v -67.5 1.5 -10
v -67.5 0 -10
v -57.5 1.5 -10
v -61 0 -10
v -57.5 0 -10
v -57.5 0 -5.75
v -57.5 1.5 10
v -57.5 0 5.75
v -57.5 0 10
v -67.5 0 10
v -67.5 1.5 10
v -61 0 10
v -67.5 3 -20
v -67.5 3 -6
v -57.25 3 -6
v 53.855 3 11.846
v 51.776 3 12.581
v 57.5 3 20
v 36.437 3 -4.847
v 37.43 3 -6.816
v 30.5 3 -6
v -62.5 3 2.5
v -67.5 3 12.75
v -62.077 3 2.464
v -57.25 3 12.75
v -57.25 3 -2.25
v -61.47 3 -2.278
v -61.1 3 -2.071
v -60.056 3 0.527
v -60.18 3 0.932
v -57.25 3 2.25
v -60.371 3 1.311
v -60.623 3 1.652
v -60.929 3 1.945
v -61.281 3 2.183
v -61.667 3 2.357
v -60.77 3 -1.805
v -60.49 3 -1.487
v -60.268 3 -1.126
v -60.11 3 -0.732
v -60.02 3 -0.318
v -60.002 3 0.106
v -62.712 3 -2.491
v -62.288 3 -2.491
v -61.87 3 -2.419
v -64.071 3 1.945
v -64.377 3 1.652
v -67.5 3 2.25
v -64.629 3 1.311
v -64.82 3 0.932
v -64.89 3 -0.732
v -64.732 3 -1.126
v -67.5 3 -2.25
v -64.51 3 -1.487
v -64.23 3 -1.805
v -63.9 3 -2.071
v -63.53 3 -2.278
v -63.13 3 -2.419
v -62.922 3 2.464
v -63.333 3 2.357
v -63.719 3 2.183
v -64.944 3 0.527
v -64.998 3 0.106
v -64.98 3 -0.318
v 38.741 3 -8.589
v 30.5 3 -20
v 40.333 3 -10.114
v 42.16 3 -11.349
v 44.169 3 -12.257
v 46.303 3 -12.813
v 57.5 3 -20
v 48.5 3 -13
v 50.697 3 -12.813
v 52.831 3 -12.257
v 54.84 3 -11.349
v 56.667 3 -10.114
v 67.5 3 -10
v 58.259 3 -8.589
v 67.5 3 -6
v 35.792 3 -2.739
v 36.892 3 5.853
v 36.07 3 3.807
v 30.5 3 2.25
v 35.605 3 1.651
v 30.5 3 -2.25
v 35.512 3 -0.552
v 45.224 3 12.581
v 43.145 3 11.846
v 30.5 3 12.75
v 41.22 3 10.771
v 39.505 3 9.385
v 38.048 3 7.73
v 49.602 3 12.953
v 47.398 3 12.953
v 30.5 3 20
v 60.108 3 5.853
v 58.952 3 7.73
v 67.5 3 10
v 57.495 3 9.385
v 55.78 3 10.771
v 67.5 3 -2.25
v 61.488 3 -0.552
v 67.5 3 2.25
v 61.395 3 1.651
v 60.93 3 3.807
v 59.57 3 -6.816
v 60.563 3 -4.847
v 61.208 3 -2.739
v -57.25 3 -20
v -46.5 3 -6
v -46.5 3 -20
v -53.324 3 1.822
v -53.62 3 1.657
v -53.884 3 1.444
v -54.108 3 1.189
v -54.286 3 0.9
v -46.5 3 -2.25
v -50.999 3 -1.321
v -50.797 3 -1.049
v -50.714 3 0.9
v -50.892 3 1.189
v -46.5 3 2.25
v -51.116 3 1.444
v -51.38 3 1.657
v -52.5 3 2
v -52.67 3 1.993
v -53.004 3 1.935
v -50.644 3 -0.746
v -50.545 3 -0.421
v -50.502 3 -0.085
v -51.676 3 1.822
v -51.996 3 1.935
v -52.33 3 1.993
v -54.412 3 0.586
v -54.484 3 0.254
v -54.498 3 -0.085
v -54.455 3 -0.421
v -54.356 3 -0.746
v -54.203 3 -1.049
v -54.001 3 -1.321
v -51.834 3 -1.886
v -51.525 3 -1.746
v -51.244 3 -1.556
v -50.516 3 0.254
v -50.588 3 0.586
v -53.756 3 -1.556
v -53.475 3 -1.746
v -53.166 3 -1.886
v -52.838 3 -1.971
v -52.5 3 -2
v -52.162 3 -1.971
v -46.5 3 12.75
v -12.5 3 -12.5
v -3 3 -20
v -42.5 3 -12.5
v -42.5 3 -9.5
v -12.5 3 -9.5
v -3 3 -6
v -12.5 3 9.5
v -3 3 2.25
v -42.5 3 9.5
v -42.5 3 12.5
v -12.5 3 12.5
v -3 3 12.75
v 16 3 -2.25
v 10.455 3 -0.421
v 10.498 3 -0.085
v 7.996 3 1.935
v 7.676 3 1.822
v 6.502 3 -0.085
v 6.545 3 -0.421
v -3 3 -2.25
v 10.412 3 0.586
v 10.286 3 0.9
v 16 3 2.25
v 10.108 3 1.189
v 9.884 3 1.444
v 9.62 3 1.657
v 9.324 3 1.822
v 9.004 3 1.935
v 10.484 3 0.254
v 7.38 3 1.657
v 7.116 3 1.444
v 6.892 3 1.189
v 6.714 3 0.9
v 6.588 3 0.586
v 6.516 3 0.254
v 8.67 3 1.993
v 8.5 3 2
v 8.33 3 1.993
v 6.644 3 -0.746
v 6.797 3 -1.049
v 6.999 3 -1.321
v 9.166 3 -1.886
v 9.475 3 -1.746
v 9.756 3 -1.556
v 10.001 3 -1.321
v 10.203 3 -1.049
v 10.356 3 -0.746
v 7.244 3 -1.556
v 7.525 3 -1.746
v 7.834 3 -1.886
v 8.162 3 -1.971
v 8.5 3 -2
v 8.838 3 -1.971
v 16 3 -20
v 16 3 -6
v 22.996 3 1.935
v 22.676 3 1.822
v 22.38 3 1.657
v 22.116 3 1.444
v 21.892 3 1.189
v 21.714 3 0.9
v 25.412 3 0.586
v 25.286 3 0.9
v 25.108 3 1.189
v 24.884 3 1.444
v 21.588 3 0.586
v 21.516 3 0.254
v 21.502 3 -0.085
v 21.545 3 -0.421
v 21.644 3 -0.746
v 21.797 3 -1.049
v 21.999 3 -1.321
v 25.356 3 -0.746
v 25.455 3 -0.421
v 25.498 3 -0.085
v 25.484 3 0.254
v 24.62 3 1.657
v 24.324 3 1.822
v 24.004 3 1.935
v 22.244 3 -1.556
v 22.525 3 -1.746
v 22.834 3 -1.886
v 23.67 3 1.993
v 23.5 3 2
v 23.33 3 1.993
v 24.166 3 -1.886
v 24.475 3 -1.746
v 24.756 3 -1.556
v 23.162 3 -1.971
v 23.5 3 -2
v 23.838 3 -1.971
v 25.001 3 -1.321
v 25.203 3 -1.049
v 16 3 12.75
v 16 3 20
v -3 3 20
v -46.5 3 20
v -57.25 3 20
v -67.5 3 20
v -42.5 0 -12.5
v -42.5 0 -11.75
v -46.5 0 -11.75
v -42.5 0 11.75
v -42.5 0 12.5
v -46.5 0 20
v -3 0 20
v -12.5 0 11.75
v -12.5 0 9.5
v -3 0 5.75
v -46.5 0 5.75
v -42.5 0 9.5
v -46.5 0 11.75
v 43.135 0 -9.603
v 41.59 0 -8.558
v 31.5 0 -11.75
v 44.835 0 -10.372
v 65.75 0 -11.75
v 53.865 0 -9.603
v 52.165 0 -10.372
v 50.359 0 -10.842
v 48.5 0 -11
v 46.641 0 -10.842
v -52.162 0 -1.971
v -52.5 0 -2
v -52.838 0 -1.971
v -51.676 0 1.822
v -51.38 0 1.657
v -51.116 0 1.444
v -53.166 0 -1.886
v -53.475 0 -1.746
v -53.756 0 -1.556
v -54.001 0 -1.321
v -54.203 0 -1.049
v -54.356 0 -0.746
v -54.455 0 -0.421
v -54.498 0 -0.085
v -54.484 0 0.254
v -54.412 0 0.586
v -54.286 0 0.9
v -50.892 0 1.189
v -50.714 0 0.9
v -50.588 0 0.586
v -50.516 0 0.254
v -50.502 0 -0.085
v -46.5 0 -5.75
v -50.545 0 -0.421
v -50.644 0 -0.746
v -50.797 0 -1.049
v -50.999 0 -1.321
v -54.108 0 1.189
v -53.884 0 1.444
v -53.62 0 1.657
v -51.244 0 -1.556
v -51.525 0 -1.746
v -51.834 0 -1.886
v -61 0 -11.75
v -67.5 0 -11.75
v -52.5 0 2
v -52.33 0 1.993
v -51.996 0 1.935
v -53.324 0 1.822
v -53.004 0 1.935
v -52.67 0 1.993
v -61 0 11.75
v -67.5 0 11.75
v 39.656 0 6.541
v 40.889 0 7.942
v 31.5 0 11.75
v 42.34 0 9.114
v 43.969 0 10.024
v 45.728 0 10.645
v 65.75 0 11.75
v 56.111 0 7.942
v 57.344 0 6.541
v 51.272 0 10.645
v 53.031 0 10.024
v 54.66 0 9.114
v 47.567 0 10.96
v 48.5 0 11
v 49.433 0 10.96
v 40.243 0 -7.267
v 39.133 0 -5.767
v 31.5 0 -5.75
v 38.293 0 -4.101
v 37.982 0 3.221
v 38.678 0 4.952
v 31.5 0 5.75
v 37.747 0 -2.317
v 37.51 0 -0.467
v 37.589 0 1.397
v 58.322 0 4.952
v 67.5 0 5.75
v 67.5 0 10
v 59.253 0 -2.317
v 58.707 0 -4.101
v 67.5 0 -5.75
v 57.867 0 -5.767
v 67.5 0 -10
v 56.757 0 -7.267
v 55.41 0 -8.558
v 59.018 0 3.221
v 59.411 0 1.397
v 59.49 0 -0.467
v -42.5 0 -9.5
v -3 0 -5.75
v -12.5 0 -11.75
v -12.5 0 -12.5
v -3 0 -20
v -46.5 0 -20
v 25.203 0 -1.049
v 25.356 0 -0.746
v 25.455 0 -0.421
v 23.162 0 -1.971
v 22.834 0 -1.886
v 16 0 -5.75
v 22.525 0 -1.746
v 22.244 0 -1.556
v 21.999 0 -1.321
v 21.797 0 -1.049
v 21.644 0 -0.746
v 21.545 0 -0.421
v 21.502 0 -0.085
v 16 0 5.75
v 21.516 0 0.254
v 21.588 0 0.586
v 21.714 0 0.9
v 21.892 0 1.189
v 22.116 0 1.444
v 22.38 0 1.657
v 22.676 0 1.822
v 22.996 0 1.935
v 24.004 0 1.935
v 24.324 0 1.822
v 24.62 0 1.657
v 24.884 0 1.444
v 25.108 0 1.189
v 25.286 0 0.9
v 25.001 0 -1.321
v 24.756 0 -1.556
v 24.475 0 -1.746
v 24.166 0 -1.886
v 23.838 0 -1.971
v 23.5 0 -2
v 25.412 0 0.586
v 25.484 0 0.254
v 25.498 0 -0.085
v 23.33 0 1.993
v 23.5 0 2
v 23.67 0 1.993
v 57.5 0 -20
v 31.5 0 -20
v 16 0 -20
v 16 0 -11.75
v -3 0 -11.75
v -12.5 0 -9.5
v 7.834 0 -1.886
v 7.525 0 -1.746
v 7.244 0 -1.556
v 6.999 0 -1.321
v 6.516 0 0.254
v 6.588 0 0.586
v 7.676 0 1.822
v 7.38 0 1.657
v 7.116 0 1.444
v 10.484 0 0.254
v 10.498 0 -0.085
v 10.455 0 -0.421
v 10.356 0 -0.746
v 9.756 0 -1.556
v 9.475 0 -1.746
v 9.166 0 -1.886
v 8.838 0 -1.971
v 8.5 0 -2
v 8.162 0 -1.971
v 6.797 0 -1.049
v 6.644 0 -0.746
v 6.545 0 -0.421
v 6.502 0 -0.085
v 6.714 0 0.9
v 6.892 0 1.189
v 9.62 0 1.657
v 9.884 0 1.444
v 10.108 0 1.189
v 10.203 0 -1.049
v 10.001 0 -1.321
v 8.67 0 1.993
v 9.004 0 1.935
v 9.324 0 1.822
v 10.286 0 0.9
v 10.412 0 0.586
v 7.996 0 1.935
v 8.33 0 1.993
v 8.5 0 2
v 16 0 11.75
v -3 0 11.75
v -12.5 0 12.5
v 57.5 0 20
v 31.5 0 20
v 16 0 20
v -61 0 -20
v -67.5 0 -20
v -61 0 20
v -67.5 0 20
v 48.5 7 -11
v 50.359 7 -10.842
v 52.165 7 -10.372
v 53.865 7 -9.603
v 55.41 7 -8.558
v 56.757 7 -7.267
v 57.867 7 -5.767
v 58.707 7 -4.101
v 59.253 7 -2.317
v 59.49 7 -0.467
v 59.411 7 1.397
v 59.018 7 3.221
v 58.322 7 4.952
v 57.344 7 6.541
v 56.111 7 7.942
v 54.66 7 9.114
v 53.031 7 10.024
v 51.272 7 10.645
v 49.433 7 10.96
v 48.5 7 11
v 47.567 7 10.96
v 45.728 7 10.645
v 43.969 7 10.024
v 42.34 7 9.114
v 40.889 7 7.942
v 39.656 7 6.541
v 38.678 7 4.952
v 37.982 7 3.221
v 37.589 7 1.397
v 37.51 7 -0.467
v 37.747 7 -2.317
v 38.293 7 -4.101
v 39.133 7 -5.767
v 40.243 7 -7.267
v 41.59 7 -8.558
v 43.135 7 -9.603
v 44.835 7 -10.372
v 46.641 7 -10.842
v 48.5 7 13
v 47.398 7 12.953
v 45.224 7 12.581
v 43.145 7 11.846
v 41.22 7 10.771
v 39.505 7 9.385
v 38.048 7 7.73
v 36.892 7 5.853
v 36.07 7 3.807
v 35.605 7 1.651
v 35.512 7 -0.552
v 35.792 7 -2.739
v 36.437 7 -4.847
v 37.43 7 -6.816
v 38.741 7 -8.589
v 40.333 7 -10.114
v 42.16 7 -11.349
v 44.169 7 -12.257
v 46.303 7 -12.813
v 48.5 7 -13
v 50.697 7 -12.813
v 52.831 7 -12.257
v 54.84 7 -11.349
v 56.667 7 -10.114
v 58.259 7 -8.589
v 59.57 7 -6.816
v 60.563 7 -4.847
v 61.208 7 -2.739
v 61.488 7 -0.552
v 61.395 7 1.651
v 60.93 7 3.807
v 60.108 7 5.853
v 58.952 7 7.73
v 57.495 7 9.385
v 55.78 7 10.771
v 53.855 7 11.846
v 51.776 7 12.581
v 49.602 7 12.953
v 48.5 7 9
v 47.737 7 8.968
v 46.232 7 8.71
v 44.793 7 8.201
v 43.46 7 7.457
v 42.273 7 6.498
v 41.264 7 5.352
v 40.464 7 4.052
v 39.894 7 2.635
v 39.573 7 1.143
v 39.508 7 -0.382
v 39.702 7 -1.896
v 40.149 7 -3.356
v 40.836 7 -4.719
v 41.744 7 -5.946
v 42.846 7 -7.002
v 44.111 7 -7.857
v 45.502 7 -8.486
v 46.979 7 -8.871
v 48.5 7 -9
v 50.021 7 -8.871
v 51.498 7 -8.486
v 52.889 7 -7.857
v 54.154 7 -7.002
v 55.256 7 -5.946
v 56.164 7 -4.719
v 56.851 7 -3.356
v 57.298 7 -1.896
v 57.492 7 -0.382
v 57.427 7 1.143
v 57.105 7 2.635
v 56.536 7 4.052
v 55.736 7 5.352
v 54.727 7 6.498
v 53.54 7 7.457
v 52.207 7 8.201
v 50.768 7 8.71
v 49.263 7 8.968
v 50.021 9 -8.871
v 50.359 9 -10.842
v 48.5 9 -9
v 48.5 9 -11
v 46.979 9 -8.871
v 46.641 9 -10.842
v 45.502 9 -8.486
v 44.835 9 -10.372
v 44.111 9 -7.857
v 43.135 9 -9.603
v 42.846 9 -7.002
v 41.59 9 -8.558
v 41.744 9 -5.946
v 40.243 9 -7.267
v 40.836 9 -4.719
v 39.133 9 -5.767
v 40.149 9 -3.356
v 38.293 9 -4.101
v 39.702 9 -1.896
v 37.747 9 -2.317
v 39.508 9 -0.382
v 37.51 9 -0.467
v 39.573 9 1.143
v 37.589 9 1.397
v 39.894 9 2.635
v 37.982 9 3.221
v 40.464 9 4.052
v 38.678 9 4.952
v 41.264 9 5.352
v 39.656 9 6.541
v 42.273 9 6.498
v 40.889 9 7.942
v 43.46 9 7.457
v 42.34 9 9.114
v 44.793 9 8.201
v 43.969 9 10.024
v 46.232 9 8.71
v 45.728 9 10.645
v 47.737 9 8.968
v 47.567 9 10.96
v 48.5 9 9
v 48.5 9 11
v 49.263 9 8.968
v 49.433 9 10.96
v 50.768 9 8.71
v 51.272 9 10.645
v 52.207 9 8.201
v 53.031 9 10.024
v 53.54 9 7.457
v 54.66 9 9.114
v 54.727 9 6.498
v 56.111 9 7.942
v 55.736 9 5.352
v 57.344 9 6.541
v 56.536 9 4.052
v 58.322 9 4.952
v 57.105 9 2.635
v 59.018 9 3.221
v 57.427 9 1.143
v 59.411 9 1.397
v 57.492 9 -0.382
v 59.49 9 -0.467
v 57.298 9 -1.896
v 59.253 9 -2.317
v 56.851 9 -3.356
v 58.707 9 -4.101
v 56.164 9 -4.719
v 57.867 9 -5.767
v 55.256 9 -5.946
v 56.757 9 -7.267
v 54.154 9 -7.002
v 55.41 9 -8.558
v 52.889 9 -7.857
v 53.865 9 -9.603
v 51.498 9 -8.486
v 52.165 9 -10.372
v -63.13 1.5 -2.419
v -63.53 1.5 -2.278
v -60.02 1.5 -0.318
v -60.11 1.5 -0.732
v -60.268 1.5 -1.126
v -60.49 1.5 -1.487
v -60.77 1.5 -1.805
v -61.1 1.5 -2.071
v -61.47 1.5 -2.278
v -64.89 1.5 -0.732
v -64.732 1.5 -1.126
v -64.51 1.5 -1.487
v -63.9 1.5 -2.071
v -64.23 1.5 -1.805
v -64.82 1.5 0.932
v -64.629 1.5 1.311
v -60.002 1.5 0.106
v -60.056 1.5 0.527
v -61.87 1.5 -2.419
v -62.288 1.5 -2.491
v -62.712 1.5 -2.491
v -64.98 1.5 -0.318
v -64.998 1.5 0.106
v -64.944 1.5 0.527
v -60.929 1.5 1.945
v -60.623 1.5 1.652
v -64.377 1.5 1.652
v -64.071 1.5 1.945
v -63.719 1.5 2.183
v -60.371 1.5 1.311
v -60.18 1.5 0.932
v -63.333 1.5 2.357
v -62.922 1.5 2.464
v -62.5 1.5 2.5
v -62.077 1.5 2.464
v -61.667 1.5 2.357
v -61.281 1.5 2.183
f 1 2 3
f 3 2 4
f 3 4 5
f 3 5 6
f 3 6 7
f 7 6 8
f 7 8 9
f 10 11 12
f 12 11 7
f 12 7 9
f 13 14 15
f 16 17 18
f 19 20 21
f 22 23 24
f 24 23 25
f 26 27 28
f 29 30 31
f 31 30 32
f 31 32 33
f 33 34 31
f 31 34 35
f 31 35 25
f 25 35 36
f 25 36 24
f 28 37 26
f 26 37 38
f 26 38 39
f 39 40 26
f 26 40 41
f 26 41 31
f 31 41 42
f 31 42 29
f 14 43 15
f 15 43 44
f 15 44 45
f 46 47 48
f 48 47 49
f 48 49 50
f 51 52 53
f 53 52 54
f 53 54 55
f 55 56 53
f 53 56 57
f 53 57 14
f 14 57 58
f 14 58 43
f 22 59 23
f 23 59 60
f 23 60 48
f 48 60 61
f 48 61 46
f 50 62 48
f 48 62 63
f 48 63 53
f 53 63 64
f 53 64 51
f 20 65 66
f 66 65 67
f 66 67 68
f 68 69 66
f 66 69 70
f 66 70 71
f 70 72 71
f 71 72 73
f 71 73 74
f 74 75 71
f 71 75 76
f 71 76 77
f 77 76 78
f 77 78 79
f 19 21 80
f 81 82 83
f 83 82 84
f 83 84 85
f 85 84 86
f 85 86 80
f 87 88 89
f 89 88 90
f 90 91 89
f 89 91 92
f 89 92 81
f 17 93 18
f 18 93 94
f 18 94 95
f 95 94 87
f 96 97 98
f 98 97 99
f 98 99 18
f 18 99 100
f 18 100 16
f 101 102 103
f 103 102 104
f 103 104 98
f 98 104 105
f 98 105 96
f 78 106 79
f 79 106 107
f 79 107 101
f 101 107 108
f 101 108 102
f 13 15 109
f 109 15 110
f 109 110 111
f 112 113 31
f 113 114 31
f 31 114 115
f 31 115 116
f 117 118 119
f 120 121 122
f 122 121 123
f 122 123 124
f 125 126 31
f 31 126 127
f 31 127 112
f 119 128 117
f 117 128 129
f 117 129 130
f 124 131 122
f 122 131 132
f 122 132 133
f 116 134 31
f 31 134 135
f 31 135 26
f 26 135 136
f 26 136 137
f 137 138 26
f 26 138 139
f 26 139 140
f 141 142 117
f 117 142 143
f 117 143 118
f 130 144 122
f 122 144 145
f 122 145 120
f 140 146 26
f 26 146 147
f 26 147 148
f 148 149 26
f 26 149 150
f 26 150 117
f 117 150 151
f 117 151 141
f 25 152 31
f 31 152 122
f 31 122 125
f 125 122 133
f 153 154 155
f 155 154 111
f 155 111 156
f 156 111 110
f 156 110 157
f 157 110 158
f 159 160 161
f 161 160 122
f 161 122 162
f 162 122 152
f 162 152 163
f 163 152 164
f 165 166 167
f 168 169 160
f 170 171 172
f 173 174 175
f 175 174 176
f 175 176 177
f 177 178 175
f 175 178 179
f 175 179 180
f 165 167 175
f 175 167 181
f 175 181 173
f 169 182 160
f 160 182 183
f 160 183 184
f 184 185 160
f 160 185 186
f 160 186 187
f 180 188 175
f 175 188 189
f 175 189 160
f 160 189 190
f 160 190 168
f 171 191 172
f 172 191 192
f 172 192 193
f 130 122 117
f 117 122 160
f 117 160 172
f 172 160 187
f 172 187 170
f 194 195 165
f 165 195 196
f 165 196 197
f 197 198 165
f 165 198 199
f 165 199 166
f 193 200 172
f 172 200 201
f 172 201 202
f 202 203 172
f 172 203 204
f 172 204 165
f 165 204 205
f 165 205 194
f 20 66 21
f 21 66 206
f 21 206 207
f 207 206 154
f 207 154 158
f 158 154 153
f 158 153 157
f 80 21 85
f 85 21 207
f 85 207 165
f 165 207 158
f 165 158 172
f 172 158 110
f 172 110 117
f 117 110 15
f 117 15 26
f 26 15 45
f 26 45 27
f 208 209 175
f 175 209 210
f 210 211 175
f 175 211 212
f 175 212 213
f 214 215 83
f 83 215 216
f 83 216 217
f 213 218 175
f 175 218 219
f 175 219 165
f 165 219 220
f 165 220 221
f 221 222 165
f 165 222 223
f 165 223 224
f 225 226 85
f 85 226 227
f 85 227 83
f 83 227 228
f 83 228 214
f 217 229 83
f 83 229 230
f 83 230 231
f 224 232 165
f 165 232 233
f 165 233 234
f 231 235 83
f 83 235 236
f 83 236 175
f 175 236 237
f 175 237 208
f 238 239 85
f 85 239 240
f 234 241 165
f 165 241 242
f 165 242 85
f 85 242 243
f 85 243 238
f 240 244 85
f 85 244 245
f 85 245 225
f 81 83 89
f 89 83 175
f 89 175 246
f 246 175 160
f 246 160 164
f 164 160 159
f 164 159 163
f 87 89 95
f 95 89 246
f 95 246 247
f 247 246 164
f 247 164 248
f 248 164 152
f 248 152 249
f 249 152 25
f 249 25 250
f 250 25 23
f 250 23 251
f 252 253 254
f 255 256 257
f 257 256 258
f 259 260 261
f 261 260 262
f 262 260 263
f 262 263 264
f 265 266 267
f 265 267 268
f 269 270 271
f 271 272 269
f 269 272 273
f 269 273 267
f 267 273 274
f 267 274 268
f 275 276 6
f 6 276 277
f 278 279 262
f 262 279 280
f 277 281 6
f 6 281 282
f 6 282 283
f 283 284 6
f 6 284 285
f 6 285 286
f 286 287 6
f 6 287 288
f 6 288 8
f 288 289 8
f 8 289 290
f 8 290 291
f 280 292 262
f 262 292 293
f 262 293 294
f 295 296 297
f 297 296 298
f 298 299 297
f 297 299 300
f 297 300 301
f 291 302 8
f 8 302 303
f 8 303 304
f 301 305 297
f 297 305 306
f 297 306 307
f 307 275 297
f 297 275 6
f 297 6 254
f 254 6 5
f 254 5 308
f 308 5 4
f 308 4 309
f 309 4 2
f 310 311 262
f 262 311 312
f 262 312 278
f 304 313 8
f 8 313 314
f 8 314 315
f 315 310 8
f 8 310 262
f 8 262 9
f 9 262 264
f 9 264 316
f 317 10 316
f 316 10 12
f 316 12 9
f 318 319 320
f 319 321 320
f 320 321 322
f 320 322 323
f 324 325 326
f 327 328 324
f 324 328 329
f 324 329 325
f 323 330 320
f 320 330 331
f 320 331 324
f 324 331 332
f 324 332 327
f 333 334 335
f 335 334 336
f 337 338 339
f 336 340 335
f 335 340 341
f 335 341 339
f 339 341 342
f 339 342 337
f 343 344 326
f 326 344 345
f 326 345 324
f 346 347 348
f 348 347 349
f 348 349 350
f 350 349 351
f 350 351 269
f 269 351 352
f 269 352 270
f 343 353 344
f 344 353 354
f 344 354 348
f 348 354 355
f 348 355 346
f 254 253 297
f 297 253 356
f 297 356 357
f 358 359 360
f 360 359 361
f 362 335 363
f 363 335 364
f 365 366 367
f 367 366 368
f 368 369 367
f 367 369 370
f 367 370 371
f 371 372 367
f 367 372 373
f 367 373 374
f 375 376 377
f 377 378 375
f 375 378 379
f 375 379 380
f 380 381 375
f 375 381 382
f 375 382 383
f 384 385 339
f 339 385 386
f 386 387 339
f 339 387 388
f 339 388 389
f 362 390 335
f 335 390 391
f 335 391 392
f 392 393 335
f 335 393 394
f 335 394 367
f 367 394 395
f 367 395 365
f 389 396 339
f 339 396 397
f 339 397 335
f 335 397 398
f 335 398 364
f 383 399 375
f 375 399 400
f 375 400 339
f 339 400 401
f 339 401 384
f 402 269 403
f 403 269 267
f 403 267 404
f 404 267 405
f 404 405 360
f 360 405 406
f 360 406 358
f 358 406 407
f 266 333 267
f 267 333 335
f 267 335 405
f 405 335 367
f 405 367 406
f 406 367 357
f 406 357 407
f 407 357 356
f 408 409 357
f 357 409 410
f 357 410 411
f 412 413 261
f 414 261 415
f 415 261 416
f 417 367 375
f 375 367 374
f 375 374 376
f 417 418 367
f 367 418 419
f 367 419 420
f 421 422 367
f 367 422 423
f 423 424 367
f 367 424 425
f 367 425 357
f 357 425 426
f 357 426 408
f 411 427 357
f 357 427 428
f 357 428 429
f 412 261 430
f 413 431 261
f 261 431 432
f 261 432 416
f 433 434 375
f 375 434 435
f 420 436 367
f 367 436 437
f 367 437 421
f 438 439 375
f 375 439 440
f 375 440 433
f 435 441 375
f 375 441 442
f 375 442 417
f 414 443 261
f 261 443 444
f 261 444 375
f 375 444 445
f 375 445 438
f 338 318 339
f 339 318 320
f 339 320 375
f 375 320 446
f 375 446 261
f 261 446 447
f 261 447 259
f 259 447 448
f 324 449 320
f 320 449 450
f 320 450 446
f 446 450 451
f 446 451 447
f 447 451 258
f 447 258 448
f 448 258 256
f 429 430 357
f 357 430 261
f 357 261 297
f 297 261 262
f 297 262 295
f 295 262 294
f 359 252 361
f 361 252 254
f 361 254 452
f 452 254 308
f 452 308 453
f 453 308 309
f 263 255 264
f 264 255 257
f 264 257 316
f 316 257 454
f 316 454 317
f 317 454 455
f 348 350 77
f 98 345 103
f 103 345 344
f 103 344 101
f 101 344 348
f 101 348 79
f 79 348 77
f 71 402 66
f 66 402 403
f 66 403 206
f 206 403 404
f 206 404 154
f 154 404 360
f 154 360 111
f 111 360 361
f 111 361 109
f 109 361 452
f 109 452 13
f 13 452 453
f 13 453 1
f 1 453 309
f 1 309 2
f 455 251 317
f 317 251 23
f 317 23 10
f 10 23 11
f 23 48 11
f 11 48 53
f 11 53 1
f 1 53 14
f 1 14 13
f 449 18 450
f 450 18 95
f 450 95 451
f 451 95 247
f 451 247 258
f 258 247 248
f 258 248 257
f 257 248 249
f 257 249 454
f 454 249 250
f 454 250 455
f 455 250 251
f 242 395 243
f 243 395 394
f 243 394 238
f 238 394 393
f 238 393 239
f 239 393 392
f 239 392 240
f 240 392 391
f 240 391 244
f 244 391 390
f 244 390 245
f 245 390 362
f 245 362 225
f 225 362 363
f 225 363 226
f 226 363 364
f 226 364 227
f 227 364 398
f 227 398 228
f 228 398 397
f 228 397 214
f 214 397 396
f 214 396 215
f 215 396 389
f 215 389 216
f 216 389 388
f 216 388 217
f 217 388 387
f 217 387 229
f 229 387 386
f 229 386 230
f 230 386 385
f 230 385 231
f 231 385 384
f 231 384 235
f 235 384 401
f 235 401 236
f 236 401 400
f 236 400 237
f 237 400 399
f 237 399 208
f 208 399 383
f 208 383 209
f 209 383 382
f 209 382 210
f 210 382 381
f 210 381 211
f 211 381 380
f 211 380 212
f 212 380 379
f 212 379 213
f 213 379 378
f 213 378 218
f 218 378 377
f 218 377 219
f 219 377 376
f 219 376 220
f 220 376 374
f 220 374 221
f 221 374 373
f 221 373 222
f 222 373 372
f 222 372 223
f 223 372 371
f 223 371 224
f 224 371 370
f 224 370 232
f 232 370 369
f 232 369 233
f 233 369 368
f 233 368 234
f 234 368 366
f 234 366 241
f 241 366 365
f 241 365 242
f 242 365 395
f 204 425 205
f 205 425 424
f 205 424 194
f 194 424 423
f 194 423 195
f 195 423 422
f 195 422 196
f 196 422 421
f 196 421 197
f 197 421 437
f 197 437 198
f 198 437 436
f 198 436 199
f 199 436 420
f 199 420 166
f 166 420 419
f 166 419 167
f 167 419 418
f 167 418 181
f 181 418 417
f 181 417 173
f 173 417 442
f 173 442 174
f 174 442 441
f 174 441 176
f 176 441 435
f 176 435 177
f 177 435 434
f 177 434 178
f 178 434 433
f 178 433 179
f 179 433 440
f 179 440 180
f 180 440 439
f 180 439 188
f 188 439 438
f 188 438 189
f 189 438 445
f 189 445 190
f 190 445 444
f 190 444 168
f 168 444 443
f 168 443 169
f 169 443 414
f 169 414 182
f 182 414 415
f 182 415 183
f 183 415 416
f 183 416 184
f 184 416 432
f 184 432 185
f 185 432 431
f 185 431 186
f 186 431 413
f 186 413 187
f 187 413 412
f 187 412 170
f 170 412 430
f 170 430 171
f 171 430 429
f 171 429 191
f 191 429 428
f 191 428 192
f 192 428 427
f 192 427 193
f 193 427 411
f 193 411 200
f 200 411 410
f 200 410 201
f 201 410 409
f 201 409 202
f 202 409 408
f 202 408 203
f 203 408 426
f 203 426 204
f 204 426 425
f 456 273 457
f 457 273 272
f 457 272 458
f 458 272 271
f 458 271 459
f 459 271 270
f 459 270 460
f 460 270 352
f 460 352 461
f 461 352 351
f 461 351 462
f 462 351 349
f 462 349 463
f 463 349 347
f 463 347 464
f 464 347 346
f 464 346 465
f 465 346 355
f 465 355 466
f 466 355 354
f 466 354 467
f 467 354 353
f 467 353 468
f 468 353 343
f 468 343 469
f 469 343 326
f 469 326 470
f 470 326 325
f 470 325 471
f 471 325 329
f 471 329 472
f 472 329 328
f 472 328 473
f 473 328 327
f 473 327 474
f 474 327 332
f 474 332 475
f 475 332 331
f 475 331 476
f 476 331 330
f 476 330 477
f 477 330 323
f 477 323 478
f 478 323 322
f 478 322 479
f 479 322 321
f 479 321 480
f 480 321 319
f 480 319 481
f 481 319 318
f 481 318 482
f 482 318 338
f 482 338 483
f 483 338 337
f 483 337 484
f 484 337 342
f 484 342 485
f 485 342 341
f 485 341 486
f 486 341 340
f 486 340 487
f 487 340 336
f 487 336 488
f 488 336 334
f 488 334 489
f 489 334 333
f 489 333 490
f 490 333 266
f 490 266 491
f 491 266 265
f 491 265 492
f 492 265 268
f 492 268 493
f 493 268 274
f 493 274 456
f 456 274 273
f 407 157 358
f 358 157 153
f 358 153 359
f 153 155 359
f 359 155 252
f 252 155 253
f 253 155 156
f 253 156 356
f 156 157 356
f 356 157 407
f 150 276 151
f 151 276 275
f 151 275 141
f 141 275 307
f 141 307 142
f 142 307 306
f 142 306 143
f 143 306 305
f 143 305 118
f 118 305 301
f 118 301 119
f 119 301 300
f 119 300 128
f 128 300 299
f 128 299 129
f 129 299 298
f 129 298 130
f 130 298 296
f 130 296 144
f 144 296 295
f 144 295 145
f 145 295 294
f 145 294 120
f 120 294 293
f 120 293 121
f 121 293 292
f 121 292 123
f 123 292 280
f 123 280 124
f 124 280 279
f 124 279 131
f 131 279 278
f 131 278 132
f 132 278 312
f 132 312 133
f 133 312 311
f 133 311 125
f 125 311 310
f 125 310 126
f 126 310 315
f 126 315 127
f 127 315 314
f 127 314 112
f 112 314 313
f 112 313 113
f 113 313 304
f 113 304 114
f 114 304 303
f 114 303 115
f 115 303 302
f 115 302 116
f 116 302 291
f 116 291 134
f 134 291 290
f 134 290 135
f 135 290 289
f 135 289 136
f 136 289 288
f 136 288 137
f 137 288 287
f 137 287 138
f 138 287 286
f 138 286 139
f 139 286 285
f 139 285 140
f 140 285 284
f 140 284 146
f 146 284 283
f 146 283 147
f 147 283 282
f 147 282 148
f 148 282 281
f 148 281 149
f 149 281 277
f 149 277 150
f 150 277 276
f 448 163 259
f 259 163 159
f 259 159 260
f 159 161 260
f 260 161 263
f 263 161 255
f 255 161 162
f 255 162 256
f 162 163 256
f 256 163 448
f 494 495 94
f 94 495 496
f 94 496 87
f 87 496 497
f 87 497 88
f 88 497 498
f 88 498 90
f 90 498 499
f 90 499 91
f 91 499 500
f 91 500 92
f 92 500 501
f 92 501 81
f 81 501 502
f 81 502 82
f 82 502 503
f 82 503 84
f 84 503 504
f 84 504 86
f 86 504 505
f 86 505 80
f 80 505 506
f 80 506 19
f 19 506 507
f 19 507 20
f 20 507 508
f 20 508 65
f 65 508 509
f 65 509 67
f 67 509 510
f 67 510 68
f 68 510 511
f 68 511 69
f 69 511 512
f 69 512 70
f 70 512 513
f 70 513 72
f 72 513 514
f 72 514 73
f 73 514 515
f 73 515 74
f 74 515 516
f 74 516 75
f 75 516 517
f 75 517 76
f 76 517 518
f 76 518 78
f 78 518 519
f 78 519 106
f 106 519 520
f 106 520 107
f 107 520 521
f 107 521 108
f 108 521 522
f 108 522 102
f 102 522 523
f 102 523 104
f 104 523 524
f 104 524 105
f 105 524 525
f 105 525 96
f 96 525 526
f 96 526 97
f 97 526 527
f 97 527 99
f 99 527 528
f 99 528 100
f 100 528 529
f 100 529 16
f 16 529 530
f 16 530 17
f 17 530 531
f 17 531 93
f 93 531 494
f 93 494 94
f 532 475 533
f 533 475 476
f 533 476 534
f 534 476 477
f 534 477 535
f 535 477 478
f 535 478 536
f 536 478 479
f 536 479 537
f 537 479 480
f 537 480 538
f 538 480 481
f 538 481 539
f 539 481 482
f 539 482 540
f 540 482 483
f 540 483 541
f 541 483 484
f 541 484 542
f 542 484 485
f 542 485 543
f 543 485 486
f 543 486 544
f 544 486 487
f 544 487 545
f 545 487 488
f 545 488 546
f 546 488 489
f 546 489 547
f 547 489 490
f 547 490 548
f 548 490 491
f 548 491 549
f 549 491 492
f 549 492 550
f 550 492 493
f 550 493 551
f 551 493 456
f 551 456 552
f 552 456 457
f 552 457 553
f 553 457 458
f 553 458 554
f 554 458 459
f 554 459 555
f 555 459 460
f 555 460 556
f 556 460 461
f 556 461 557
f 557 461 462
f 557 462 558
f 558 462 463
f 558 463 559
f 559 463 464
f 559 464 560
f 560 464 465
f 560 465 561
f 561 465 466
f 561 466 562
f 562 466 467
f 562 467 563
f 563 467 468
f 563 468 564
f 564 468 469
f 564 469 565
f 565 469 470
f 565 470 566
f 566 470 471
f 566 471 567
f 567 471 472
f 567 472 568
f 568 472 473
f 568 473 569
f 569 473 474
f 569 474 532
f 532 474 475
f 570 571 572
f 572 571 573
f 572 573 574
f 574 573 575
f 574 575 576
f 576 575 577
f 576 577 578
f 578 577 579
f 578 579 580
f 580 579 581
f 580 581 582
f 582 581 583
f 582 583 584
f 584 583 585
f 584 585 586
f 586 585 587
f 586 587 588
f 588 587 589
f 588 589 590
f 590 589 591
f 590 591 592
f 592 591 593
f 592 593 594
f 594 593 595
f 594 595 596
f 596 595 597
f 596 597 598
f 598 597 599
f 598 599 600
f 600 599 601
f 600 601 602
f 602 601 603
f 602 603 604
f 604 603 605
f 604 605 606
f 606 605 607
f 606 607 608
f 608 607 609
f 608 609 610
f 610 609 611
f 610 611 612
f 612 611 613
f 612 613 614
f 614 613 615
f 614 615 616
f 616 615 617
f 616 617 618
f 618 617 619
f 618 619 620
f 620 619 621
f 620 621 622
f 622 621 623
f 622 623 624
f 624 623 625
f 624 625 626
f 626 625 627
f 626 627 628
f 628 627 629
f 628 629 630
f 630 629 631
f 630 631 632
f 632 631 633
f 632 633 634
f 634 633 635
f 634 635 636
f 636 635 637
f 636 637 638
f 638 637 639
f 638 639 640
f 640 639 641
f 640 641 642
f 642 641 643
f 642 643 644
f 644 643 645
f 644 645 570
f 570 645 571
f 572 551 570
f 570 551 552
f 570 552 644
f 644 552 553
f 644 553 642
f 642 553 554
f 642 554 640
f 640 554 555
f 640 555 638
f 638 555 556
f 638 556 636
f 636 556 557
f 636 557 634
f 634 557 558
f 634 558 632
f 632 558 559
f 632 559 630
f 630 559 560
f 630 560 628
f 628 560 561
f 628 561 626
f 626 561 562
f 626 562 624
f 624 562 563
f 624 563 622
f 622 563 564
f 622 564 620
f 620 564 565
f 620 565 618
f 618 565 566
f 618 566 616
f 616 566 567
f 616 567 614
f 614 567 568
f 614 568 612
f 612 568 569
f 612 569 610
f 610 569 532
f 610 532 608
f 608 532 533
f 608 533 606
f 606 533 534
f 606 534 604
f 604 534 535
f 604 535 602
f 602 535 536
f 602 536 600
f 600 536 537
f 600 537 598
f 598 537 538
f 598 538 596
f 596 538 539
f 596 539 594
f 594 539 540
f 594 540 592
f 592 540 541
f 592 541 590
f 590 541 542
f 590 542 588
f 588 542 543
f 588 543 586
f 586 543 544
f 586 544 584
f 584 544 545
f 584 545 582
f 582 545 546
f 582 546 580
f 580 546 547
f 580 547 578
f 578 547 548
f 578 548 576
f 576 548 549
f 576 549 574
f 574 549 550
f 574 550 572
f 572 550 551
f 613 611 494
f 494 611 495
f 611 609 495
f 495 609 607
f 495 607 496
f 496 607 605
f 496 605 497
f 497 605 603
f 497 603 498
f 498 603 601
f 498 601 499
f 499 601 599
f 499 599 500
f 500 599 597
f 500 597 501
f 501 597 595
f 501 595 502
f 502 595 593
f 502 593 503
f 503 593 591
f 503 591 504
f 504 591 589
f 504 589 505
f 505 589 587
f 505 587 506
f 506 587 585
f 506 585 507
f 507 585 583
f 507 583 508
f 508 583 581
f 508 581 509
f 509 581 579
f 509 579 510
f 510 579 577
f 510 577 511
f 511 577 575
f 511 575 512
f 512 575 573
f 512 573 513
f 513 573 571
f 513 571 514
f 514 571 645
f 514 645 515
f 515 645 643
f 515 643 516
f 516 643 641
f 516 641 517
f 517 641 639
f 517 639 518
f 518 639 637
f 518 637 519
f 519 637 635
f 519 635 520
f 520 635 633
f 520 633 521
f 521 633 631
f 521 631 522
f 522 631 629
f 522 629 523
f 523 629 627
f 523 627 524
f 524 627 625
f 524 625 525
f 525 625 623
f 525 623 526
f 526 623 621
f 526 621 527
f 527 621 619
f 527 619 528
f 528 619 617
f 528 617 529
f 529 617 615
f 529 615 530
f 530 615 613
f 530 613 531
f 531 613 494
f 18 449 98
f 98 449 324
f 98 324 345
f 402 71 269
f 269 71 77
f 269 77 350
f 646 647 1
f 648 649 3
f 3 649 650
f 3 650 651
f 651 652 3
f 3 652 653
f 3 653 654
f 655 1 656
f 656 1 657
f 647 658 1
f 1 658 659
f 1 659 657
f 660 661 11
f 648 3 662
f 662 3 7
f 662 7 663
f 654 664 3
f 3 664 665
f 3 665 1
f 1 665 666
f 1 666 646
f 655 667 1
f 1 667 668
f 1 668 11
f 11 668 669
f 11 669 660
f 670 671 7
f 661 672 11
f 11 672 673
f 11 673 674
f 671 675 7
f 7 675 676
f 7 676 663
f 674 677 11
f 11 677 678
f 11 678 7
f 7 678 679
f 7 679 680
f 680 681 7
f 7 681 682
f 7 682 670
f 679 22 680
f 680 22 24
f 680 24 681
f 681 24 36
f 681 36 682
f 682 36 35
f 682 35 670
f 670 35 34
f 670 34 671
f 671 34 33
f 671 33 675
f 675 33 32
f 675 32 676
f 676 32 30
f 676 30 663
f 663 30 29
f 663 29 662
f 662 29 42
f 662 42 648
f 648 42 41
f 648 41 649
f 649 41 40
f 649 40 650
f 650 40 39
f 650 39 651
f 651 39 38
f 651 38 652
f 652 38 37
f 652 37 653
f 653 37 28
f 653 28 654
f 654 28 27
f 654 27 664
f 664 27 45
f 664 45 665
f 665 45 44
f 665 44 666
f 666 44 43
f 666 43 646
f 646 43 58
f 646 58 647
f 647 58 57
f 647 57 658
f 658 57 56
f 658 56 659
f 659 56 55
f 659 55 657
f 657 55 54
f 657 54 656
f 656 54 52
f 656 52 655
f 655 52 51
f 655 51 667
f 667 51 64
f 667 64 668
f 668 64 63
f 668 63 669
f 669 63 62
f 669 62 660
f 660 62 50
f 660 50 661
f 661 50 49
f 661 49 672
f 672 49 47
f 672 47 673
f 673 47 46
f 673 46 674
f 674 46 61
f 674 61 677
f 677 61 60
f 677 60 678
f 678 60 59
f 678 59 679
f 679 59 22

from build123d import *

# Parameters (mm, degrees)
CROQUIS1_R              = 11
CROQUIS1_R_2            = 2
CROQUIS1_W              = 30
CROQUIS1_H              = 3
SALIENTE_EXTRUIR1_DEPTH = 3
CROQUIS2_R              = 13
CROQUIS2_R_2            = 11
SALIENTE_EXTRUIR2_DEPTH = 4
CROQUIS3_R              = 13
CROQUIS3_R_2            = 9
SALIENTE_EXTRUIR3_DEPTH = 2
CHAFL_N1_SIZE           = 2
CHAFL_N2_SIZE           = 10
CROQUIS4_W              = 10
CROQUIS4_H              = 20
CROQUIS4_R              = 2.5
SALIENTE_EXTRUIR4_DEPTH = 1.5


with BuildPart() as part:
    # Croquis1 → Saliente-Extruir1 (new body)
    with BuildSketch(Plane(origin=(0, 0, 0), x_dir=(1, 0, 0), z_dir=(0, 1, 0))):
        Polygon((-67.5, -20), (67.5, -20), (67.5, 20), (-67.5, 20), (-67.5, 10), (-57.5, 10), (-57.5, -10), (-67.5, -10), align=None)
        with Locations(Location((48.5, 0, 0), (0, 0, 270))):
            Circle(CROQUIS1_R, mode=Mode.SUBTRACT)
        with Locations(Location((-52.5, 0, 0), (0, 0, 270))):
            Circle(CROQUIS1_R_2, mode=Mode.SUBTRACT)
        with Locations(Location((23.5, 0, 0), (0, 0, 270))):
            Circle(CROQUIS1_R_2, mode=Mode.SUBTRACT)
        with Locations(Location((8.5, 0, 0), (0, 0, 270))):
            Circle(CROQUIS1_R_2, mode=Mode.SUBTRACT)
        with Locations((-27.5, 11)):
            Rectangle(CROQUIS1_W, CROQUIS1_H, mode=Mode.SUBTRACT)
        with Locations((-27.5, -11)):
            Rectangle(CROQUIS1_W, CROQUIS1_H, mode=Mode.SUBTRACT)
    extrude(amount=SALIENTE_EXTRUIR1_DEPTH)

    # Croquis2 → Saliente-Extruir2 (add)
    with BuildSketch(Plane(origin=(0, 3, 0), x_dir=(1, 0, 0), z_dir=(0, 1, 0))):
        with Locations(Location((48.5, 0, 0), (0, 0, 90))):
            Circle(CROQUIS2_R)
        with Locations(Location((48.5, 0, 0), (0, 0, 270))):
            Circle(CROQUIS2_R_2, mode=Mode.SUBTRACT)
    extrude(amount=SALIENTE_EXTRUIR2_DEPTH)

    # Croquis3 → Saliente-Extruir3 (add)
    with BuildSketch(Plane(origin=(0, 7, 0), x_dir=(1, 0, 0), z_dir=(0, 1, 0))):
        with Locations(Location((48.5, 0, 0), (0, 0, 90))):
            Circle(CROQUIS3_R)
        with Locations(Location((48.5, 0, 0), (0, 0, 270))):
            Circle(CROQUIS3_R_2, mode=Mode.SUBTRACT)
    extrude(amount=SALIENTE_EXTRUIR3_DEPTH)

    # Chaflán1
    chafl_n1_edges = [part.edges().sort_by_distance(p)[0] for p in [
        (48.5, 9, 13),
    ]]
    chamfer(chafl_n1_edges, length=CHAFL_N1_SIZE)

    # Chaflán2
    chafl_n2_edges = [part.edges().sort_by_distance(p)[0] for p in [
        (67.5, 1.5, 20),
        (67.5, 1.5, -20),
    ]]
    chamfer(chafl_n2_edges, length=CHAFL_N2_SIZE)

    # Croquis4 → Saliente-Extruir4 (add)
    with BuildSketch(Plane(origin=(0, 3, 0), x_dir=(1, 0, 0), z_dir=(0, 1, 0))):
        with Locations((-62.5, 0)):
            Rectangle(CROQUIS4_W, CROQUIS4_H)
        with Locations(Location((-62.5, 0, 0), (0, 0, 270))):
            Circle(CROQUIS4_R, mode=Mode.SUBTRACT)
    extrude(amount=-SALIENTE_EXTRUIR4_DEPTH)


solid = part.part
